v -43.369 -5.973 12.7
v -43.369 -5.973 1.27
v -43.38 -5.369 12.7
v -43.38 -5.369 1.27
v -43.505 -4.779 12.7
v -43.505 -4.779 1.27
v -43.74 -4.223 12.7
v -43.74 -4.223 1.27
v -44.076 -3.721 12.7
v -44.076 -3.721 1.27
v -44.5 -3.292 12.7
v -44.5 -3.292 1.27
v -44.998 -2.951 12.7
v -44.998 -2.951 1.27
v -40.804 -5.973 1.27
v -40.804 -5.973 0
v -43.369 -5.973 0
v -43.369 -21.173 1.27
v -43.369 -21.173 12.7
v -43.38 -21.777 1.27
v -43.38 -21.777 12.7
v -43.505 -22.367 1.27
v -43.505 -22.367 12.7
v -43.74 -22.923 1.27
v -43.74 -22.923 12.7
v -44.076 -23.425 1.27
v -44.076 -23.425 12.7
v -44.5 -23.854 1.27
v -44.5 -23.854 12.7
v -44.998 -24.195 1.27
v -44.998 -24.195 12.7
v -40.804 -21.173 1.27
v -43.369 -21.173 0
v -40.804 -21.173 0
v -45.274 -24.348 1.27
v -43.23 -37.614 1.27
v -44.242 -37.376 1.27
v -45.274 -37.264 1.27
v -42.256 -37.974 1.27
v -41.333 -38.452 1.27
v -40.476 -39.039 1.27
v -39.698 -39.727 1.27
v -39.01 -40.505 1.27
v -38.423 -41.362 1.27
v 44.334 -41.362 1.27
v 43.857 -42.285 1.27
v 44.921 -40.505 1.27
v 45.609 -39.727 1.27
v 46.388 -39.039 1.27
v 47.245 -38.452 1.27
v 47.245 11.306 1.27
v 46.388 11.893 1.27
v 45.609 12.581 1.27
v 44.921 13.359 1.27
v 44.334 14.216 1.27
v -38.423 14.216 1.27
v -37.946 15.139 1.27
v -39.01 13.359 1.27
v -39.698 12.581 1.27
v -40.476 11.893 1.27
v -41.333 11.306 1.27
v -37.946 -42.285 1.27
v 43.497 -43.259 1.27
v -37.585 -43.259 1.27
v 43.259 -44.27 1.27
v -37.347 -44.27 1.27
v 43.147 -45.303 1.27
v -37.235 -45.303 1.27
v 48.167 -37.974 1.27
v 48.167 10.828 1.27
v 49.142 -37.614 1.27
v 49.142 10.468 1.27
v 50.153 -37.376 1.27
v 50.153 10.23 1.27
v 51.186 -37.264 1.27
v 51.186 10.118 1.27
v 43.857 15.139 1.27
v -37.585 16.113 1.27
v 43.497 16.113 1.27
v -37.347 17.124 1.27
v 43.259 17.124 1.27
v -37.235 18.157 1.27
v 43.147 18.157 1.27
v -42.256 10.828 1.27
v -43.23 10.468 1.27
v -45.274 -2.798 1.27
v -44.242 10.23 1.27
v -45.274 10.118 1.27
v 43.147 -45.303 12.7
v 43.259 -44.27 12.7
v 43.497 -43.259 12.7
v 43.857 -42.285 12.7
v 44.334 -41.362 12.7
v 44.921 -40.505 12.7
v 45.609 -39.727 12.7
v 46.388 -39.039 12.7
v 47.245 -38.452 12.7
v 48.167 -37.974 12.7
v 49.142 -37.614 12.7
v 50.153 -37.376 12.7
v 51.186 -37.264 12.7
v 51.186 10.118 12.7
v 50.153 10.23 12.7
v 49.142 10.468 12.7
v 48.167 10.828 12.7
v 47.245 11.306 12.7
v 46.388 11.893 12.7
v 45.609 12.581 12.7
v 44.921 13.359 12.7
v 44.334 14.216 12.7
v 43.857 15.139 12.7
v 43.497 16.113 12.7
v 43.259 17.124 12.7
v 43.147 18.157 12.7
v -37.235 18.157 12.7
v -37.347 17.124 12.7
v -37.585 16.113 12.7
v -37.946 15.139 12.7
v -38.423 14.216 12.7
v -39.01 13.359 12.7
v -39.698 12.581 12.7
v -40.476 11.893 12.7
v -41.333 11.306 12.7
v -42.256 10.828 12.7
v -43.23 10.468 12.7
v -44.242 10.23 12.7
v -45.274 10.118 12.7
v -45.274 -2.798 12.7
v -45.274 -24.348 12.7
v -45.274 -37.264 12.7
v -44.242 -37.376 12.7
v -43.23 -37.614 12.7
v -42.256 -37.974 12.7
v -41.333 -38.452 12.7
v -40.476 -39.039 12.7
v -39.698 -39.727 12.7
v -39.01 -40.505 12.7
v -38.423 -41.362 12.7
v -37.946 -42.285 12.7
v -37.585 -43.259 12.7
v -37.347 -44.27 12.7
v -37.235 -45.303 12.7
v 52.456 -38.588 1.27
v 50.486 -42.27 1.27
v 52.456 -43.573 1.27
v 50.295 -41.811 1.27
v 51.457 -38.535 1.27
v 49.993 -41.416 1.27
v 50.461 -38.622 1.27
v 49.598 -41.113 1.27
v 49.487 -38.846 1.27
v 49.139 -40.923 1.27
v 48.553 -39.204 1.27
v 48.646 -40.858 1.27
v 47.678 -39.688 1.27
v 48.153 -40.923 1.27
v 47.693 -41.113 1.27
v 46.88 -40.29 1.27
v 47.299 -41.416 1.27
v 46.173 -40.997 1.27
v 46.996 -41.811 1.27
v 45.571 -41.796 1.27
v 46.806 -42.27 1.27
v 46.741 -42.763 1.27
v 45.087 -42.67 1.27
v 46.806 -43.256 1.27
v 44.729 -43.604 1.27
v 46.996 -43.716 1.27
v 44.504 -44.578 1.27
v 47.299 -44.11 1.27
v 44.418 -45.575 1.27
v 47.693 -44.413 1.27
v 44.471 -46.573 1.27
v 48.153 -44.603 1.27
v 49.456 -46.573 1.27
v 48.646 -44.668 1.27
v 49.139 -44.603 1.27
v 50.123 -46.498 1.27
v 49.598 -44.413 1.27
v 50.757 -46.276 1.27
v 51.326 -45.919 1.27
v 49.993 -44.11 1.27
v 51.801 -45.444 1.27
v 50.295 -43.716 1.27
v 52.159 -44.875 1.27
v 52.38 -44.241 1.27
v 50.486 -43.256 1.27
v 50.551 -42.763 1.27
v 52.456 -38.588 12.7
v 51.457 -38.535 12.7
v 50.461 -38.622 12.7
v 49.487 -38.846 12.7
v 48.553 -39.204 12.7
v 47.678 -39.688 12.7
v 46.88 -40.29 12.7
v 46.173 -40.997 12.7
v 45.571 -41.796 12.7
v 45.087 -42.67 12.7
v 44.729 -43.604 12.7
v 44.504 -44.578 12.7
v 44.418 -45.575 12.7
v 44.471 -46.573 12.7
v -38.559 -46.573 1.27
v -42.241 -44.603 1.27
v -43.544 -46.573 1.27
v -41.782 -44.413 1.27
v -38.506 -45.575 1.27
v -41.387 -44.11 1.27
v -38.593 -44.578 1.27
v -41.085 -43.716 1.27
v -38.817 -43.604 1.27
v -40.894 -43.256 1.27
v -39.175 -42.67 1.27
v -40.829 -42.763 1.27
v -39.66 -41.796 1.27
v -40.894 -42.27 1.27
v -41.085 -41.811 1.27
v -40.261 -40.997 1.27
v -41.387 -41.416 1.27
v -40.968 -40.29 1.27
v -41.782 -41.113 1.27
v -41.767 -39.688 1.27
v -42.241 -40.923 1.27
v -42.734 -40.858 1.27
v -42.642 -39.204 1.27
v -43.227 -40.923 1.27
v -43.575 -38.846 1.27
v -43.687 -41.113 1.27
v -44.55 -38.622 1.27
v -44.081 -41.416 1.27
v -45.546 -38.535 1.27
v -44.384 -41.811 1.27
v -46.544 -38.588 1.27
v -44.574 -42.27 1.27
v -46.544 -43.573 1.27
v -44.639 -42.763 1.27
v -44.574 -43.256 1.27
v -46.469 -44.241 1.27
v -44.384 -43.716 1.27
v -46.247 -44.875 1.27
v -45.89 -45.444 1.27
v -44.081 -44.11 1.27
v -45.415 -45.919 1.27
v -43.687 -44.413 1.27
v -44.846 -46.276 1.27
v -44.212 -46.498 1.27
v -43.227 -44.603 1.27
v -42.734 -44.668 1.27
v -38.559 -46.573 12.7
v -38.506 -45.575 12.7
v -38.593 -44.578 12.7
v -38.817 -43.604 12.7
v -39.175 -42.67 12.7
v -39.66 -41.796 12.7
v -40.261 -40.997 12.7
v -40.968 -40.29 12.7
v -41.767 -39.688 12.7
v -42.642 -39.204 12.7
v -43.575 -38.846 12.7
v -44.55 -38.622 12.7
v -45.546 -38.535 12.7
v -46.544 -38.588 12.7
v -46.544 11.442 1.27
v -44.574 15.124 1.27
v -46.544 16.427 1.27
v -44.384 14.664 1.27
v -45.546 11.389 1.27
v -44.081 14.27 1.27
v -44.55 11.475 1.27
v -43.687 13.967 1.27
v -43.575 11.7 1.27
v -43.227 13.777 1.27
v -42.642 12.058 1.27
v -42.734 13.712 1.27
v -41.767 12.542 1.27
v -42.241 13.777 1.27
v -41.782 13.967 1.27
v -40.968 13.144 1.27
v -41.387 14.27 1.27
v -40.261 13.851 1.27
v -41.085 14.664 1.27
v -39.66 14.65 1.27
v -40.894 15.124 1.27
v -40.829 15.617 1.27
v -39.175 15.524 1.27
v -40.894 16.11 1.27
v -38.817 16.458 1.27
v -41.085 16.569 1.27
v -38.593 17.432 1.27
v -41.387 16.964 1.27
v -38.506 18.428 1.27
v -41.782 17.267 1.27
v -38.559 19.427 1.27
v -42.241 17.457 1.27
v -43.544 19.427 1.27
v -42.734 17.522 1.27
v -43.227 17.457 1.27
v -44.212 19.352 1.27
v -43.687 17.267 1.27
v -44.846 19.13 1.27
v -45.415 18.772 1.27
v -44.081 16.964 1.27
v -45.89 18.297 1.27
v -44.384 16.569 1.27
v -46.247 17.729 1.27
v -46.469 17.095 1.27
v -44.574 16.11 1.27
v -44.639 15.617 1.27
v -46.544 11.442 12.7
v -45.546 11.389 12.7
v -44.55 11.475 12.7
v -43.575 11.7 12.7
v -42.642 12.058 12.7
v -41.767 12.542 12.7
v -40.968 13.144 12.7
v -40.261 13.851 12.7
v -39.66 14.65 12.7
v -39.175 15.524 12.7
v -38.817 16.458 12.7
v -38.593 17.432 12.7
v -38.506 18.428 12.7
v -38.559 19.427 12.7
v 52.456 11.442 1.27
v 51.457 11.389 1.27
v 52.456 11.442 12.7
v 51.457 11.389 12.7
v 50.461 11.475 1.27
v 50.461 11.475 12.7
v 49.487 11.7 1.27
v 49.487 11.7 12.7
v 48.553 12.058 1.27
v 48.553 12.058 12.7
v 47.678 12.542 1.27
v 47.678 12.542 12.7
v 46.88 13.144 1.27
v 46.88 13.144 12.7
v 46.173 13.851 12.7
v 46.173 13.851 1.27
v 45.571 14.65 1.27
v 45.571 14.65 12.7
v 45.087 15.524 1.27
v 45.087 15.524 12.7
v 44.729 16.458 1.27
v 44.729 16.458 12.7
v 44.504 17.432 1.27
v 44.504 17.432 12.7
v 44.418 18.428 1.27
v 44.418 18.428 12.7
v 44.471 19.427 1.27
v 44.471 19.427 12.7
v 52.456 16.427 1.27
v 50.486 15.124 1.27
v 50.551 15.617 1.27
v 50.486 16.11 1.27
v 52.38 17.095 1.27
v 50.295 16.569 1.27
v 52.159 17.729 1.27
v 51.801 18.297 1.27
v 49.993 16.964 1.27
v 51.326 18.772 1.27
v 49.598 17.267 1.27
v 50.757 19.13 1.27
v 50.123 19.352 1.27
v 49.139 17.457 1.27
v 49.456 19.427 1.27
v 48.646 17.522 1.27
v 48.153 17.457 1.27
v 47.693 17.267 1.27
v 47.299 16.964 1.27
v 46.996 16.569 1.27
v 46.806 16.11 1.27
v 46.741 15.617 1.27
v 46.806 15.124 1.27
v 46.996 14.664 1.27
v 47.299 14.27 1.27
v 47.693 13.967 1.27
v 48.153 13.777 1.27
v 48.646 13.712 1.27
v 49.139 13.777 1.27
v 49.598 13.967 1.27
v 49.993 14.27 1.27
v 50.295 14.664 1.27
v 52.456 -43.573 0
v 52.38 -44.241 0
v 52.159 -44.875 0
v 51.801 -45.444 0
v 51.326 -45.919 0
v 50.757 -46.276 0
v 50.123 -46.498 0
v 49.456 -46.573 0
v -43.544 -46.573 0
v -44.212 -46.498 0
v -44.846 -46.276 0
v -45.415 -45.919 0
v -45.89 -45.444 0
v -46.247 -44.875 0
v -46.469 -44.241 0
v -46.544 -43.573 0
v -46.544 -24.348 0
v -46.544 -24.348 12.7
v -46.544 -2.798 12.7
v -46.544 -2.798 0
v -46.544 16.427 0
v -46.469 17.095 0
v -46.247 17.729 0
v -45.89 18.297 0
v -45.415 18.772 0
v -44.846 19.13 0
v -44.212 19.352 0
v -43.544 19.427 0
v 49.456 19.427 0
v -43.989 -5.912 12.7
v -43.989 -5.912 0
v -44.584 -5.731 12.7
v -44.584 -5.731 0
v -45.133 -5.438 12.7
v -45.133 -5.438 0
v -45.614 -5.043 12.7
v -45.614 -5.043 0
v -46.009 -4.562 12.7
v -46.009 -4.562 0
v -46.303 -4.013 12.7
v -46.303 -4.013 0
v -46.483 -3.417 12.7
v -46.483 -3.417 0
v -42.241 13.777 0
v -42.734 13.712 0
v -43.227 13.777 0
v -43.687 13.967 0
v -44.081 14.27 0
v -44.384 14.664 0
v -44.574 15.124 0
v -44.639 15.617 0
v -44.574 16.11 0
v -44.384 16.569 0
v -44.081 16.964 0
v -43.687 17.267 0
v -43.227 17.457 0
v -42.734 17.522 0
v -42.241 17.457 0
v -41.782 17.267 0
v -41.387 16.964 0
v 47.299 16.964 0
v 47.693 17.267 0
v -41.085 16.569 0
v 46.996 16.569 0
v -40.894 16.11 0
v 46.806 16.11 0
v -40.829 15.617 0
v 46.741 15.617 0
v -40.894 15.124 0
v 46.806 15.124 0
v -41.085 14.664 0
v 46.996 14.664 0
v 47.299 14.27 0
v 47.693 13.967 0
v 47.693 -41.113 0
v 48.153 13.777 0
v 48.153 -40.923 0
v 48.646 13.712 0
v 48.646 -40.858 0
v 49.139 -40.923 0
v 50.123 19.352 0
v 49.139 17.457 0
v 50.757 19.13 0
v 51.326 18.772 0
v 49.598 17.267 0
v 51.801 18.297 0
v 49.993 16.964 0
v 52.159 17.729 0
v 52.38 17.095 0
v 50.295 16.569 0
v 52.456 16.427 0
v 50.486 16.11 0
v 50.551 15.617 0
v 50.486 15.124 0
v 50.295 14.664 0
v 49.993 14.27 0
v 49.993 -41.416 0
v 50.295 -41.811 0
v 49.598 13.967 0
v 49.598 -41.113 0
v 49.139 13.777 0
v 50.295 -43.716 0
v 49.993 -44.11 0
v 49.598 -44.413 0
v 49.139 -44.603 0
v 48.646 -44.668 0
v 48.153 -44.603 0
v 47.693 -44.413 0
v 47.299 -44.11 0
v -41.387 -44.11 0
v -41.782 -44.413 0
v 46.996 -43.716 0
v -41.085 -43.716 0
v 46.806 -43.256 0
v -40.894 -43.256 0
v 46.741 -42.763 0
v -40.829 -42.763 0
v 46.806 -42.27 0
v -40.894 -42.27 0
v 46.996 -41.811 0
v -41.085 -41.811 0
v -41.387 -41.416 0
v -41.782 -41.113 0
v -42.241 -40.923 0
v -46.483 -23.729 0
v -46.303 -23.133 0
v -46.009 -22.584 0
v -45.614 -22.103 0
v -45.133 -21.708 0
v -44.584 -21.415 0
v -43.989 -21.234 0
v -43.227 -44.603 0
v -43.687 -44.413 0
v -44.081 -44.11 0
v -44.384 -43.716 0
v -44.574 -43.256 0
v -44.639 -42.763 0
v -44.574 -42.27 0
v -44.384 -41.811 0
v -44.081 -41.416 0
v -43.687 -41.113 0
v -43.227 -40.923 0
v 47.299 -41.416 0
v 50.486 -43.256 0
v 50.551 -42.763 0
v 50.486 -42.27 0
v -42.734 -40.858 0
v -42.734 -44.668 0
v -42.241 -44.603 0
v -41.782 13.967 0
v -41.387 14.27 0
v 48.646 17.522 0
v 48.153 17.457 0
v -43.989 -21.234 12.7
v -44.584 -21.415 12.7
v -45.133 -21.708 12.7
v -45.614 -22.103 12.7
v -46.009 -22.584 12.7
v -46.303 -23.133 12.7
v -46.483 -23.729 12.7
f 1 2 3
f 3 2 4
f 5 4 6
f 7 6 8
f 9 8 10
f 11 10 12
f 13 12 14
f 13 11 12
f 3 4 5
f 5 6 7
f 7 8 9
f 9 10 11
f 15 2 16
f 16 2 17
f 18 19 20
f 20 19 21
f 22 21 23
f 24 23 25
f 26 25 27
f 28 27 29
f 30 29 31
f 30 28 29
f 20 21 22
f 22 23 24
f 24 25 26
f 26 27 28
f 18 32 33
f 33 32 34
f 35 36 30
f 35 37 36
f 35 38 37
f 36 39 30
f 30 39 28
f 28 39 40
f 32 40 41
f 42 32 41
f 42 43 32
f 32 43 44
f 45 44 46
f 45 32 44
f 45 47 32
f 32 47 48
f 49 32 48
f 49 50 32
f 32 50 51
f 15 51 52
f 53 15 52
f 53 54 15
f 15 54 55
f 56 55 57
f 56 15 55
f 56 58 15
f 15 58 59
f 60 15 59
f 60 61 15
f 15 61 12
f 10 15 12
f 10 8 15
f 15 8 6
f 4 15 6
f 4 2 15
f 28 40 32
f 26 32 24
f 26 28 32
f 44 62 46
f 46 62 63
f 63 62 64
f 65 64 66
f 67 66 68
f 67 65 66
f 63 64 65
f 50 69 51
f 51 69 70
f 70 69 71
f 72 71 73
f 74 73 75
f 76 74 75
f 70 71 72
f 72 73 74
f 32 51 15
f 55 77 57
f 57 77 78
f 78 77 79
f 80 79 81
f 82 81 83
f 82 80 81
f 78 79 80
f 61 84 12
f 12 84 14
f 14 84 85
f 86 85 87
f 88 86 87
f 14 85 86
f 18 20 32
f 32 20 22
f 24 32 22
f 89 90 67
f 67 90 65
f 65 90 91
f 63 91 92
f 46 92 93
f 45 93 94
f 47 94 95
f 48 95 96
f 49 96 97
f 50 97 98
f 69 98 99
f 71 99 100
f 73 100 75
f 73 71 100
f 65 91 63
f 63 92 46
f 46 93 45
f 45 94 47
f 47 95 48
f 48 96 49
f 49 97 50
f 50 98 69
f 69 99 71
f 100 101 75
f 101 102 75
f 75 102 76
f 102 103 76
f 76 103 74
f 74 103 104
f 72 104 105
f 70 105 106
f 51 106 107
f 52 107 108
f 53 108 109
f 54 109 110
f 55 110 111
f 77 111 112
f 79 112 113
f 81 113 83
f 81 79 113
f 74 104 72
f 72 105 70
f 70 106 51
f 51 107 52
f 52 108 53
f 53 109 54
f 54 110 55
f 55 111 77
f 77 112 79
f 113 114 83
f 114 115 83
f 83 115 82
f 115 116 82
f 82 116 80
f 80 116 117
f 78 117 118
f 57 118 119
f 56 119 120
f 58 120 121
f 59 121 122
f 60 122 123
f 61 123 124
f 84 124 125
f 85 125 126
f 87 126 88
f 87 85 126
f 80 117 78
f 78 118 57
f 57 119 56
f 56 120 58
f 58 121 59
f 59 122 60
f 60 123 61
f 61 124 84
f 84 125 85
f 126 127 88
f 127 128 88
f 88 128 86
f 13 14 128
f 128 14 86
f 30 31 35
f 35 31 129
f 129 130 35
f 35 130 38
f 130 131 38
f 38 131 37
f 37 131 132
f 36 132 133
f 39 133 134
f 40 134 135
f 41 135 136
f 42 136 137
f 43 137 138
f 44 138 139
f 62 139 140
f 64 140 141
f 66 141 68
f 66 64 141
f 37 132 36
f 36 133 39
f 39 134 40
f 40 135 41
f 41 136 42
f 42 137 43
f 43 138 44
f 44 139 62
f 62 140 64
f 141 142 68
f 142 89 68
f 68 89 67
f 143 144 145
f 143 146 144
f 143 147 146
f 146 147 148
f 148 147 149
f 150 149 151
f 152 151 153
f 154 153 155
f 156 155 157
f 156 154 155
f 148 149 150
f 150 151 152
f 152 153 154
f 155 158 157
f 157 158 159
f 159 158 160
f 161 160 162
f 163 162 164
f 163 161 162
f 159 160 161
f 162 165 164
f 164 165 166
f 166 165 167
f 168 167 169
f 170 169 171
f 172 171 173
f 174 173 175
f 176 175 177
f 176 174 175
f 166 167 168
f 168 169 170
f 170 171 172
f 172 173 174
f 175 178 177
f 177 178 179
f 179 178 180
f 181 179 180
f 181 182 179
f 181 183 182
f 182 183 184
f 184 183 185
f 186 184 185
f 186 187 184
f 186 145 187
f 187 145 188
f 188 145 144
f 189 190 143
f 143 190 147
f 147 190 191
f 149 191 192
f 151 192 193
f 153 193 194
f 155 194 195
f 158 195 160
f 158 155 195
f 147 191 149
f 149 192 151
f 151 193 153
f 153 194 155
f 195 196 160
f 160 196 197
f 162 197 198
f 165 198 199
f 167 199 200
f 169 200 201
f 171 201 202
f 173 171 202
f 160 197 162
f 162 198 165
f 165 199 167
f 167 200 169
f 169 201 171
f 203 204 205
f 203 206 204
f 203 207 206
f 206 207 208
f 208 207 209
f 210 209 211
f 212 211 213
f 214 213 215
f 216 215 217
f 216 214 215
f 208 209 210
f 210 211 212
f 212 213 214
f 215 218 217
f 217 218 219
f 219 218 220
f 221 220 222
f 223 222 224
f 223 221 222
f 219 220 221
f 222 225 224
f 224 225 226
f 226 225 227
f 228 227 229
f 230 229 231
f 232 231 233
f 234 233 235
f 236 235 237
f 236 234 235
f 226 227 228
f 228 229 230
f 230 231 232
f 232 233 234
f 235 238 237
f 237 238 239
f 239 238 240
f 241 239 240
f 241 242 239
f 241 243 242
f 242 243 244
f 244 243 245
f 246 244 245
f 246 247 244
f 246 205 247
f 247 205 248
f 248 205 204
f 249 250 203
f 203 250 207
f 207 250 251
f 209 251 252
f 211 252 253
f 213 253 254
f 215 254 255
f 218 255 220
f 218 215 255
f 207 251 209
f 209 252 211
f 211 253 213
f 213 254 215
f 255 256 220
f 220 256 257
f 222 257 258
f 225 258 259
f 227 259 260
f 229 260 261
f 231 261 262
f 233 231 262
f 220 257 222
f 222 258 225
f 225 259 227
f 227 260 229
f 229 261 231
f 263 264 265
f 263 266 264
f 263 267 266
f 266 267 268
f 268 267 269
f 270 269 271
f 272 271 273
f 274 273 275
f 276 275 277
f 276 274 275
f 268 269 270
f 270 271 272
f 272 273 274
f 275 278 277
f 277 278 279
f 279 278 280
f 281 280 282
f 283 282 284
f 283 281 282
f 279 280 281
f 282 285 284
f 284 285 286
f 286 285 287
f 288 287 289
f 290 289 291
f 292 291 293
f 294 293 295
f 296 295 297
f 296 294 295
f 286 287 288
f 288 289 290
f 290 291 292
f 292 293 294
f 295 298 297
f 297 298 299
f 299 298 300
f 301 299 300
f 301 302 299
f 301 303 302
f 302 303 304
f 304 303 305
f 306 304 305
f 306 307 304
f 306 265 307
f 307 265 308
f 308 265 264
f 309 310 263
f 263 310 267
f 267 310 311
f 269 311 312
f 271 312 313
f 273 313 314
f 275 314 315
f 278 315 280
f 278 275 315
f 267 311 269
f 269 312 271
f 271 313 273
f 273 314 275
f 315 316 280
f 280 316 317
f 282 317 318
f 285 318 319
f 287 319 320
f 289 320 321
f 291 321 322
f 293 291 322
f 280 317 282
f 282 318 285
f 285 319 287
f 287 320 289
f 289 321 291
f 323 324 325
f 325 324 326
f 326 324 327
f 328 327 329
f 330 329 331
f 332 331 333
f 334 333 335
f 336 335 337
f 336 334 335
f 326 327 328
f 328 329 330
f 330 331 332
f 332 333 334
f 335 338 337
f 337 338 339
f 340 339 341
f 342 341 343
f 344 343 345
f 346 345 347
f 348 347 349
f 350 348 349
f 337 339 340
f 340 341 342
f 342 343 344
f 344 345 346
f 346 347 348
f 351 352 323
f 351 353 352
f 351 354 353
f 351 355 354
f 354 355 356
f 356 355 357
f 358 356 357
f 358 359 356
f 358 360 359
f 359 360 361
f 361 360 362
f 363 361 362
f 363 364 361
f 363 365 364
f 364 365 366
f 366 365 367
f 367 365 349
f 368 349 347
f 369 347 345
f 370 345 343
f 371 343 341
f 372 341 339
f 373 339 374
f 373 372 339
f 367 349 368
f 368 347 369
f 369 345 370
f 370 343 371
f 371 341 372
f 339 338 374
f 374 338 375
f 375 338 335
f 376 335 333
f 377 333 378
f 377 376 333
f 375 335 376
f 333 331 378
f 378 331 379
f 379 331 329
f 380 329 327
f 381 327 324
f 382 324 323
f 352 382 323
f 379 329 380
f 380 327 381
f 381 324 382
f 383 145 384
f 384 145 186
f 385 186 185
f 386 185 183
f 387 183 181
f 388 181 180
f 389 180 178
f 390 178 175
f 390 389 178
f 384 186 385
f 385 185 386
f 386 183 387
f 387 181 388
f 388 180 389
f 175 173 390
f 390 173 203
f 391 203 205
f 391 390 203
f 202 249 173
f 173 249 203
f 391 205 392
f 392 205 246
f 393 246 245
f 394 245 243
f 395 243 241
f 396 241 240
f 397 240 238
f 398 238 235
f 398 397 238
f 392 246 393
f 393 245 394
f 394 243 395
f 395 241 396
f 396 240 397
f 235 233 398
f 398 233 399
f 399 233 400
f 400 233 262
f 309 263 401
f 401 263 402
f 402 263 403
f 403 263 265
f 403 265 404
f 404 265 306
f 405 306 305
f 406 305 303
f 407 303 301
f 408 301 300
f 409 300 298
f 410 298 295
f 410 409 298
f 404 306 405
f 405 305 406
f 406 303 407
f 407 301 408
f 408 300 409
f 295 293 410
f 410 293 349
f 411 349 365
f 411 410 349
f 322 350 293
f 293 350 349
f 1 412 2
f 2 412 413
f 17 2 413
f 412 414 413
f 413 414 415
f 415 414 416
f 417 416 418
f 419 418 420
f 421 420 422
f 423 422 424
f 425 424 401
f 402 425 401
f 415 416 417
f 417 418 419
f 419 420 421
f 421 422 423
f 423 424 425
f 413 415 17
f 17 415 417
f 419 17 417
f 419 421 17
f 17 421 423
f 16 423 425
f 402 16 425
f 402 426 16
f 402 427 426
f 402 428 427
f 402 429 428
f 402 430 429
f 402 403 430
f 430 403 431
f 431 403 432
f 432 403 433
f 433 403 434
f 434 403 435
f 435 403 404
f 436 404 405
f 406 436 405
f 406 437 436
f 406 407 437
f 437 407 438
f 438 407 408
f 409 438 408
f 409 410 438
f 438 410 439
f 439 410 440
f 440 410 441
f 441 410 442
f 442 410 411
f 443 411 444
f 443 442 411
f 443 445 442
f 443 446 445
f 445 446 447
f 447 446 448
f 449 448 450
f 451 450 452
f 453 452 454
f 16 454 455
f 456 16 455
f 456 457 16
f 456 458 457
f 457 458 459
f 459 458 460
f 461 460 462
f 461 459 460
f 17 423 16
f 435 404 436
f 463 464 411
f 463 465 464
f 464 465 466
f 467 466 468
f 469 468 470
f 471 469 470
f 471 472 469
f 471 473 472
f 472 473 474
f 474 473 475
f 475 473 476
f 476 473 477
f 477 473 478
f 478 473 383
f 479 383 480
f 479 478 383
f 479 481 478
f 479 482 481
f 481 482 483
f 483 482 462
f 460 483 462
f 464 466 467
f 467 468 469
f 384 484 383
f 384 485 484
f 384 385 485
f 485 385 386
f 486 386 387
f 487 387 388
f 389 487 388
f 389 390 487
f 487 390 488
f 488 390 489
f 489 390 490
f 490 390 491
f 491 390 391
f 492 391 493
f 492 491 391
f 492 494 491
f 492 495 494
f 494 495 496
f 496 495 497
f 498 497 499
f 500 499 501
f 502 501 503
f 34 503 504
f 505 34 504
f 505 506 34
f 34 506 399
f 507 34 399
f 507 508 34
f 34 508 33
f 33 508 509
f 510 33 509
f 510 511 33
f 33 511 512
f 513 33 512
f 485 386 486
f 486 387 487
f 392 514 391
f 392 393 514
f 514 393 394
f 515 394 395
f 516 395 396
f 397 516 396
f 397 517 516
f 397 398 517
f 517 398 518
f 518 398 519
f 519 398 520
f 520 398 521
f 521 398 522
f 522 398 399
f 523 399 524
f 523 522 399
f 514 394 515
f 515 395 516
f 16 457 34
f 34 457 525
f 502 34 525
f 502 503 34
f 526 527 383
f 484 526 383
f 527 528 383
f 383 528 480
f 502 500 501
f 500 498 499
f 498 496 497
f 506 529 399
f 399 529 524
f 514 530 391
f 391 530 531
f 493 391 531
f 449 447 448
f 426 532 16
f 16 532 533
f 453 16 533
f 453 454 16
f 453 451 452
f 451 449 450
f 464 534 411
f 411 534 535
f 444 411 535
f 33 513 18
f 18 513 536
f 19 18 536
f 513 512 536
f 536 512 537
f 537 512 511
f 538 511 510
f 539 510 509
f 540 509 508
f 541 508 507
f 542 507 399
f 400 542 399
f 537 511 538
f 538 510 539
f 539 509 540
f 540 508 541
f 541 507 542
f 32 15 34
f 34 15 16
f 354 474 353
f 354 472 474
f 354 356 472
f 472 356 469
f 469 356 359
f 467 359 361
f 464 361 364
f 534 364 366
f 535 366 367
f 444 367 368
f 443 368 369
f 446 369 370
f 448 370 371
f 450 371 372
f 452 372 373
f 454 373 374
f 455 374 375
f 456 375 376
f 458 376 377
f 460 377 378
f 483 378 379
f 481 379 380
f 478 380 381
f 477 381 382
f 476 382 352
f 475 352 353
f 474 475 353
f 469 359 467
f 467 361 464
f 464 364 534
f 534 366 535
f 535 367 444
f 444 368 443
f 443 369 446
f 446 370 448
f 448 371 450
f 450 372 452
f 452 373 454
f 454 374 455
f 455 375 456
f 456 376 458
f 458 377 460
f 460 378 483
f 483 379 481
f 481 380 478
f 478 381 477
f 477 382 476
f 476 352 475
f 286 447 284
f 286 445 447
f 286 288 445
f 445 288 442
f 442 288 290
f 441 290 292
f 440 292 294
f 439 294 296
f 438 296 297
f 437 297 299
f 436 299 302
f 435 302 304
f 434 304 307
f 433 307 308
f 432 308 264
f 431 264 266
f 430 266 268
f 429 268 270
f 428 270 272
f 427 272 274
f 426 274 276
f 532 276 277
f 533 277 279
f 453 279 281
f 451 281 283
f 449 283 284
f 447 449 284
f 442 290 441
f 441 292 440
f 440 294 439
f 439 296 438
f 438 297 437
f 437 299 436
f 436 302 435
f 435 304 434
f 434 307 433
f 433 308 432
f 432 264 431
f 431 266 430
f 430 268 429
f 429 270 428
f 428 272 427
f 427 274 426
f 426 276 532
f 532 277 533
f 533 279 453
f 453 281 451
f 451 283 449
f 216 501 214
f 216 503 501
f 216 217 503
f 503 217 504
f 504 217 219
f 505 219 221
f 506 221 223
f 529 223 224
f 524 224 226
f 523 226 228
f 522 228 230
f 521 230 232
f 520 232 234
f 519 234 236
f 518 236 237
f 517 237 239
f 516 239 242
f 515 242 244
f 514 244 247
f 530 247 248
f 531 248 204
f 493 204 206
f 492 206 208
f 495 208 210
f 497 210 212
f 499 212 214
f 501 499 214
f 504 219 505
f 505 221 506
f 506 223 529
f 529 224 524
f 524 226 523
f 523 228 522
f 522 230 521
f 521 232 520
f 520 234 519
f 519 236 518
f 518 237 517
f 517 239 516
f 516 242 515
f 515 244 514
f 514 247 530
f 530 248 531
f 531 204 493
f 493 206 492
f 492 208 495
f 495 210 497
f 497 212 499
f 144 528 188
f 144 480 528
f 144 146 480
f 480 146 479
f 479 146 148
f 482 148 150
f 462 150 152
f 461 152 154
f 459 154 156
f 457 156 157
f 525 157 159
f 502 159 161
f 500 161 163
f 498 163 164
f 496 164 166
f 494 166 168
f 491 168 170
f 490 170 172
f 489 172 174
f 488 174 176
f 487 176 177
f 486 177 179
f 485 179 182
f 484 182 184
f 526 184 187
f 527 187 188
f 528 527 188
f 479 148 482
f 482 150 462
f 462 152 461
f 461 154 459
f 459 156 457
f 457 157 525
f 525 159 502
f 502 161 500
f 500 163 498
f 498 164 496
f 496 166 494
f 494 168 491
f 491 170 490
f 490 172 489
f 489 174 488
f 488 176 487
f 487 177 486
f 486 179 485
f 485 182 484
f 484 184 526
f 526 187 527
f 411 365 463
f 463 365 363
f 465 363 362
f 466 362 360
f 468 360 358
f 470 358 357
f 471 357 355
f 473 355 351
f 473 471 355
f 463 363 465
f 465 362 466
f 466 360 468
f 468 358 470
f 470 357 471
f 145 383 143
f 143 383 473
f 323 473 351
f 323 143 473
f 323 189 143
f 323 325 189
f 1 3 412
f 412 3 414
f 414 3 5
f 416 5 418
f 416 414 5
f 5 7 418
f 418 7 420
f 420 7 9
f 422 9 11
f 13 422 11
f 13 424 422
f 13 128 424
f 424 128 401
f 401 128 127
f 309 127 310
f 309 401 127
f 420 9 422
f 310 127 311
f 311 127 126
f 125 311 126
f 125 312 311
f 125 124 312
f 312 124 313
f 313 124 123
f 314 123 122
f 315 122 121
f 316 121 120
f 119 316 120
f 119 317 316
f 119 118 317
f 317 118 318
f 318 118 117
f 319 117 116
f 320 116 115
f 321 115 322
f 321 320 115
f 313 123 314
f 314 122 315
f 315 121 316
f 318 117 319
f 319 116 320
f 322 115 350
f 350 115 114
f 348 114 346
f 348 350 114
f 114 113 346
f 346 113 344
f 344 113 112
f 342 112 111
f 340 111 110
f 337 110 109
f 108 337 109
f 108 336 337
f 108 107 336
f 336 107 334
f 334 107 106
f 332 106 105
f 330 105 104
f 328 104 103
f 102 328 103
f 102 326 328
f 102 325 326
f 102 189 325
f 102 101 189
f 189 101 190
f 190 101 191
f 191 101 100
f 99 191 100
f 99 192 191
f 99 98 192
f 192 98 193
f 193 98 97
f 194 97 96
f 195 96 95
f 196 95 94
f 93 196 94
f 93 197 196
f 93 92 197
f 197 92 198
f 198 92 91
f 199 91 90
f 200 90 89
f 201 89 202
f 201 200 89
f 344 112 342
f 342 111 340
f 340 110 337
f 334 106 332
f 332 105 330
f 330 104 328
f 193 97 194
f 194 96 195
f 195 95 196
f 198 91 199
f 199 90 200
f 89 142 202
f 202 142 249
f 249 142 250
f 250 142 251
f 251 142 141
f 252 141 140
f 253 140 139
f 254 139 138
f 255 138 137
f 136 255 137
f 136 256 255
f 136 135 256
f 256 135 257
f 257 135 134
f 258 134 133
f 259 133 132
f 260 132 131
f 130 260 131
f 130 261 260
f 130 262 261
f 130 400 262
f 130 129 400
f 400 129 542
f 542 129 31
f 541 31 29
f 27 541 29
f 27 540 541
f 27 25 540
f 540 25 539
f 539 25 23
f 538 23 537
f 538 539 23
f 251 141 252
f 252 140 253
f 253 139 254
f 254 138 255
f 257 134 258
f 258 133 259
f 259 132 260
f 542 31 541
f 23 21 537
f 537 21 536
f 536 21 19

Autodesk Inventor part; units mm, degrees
ref_plane "YZ Plane" through (0, 0, 0) normal (1, 0, 0) x (0, 1, 0)
ref_plane "XZ Plane" through (0, 0, 0) normal (0, 1, 0) x (-1, 0, 0)
ref_plane "XY Plane" through (0, 0, 0) normal (0, 0, 1) x (1, 0, 0)
sketch "Sketch1" plane through (0, 0, 0) normal (0, 0, 1) x (1, 0, 0)
  line L0 (-43.5443, 19.427) -> (49.4557, 19.427)
  line L1 (52.4557, 16.427) -> (52.4557, -43.573)
  line L2 (49.4557, -46.573) -> (-43.5443, -46.573)
  line L3 (-46.5443, -43.573) -> (-46.5443, 16.427)
  arc A0 (-43.5443, 19.427) -> (-46.5443, 16.427) centre (-43.5443, 16.427) ccw
  arc A1 (-46.5443, -43.573) -> (-43.5443, -46.573) centre (-43.5443, -43.573) ccw
  arc A2 (49.4557, -46.573) -> (52.4557, -43.573) centre (49.4557, -43.573) ccw
  arc A3 (52.4557, 16.427) -> (49.4557, 19.427) centre (49.4557, 16.427) ccw
  point P0 (0, 0)
  point P1 (0, 0)
  point P2 (-46.5443, 19.427)
  point P3 (52.4557, -46.573)
  point P4 (52.4557, 19.427)
  dimension "d0" = 99
  dimension "d1" = 66
  dimension "d2" = 3
extrude "Extrusion1" add sketch "Sketch1" along normal blind 12.7
sketch "Sketch2" plane through (0, 0, 12.7) normal (0, 0, 1) x (1, 0, 0)
  line L0 (-46.5443, 16.427) -> (-46.5443, -43.573) projected
  line L1 (49.4557, 19.427) -> (-43.5443, 19.427) projected
  circle A0 centre (-42.7343, 15.617) radius 1.905
  line L2 (-50.0562, -13.573) -> (79.0191, -13.573) construction
  line L3 (2.9557, 30.2203) -> (2.9557, -48.7988) construction
  circle A1 centre (-42.7343, -42.763) radius 1.905
  circle A2 centre (48.6457, 15.617) radius 1.905
  circle A3 centre (48.6457, -42.763) radius 1.905
  point P0 (0, 0)
  dimension "d8" = 3.81
  dimension "d9" = 3.81
  dimension "d10" = 3.81
  dimension "d50" = 3.81
  dimension "d51" = 3.81
  dimension "d52" = 3.81
extrude "Extrusion2" cut sketch "Sketch2" against normal blind 25.4
sketch "Sketch3" plane through (0, 0, 12.7) normal (0, 0, 1) x (1, 0, 0)
  circle A0 centre (48.6457, 15.617) radius 1.905 projected
  circle A1 centre (-42.7343, 15.617) radius 1.905 projected
  circle A2 centre (-42.7343, -42.763) radius 1.905 projected
  circle A3 centre (48.6457, -42.763) radius 1.905 projected
  line L0 (49.4557, 19.427) -> (-43.5443, 19.427) projected
  arc A4 (-43.5443, 19.427) -> (-46.5443, 16.427) centre (-43.5443, 16.427) ccw projected
  line L1 (-46.5443, 16.427) -> (-46.5443, -43.573) construction
  arc A5 (-46.5443, -43.573) -> (-43.5443, -46.573) centre (-43.5443, -43.573) ccw projected
  line L2 (-43.5443, -46.573) -> (49.4557, -46.573) projected
  arc A6 (49.4557, -46.573) -> (52.4557, -43.573) centre (49.4557, -43.573) ccw projected
  line L3 (52.4557, -43.573) -> (52.4557, 16.427) projected
  arc A7 (52.4557, 16.427) -> (49.4557, 19.427) centre (49.4557, 16.427) ccw projected
  arc A8 (-43.5443, 19.427) -> (-46.5443, 16.427) centre (-43.5443, 16.427) ccw projected
  line L4 (49.4557, 19.427) -> (-43.5443, 19.427) projected
  circle A9 centre (48.6457, 15.617) radius 1.905 projected
  circle A10 centre (-42.7343, 15.617) radius 1.905 projected
  circle A11 centre (-42.7343, -42.763) radius 1.905 projected
  circle A12 centre (48.6457, -42.763) radius 1.905 projected
  arc A13 (52.4557, 16.427) -> (49.4557, 19.427) centre (49.4557, 16.427) ccw projected
  line L5 (52.4557, 16.427) -> (52.4557, -43.573) projected
  arc A14 (49.4557, -46.573) -> (52.4557, -43.573) centre (49.4557, -43.573) ccw projected
  line L6 (49.4557, -46.573) -> (-43.5443, -46.573) projected
  arc A15 (-46.5443, -43.573) -> (-43.5443, -46.573) centre (-43.5443, -43.573) ccw projected
  line L7 (-46.5443, -43.573) -> (-46.5443, 16.427) projected
  arc A16 (-43.5443, 19.427) -> (-46.5443, 16.427) centre (-43.5443, 16.427) ccw projected
  line L8 (-43.5443, 19.427) -> (49.4557, 19.427) projected
  line L9 (-43.5443, 19.427) -> (49.4557, 19.427) projected
  line L10 (-40.8039, 19.427) -> (-40.8039, -46.573) construction
  line L11 (49.4557, -46.573) -> (-43.5443, -46.573) projected
  line L12 (-40.8039, 19.427) -> (-51.3078, 19.427) construction
  line L13 (-40.8039, -46.573) -> (-51.3078, -46.573) construction
  line L14 (-40.8039, -21.173) -> (-51.3078, -21.173) construction
  line L15 (-40.8039, -5.973) -> (-51.3078, -5.973) construction
  line L16 (-46.5443, -43.573) -> (-46.5443, 16.427) projected
  line L17 (-46.5443, -5.973) -> (-40.8039, -5.973)
  line L18 (-40.8039, -5.973) -> (-40.8039, -21.173)
  line L19 (-40.8039, -21.173) -> (-46.5443, -21.173)
  line L20 (-46.5443, -21.173) -> (-46.5443, -5.973)
  point P0 (0, 0)
  dimension "d13" = 25.4
  dimension "d14" = 25.4
  dimension "d15" = 5.7404
extrude "Extrusion3" cut sketch "Sketch3" against normal blind 25.4 contours L17 L18 L19 L7
fillet "Fillet1" radius 3.175 2 edges at (-46.5443, -21.173, 6.35) (-46.5443, -5.973, 6.35)
sketch "Sketch9" plane through (0, 0, 12.7) normal (0, 0, 1) x (1, 0, 0)
  arc A0 (-43.5443, 19.427) -> (-46.5443, 16.427) centre (-43.5443, 16.427) ccw projected
  line L0 (-46.5443, -2.798) -> (-46.5443, 16.427) construction
  line L1 (-46.5443, 16.427) -> (-46.5443, -2.798)
  line L2 (-43.5443, 19.427) -> (-26.5771, 19.427) construction
  line L3 (49.4557, 19.427) -> (-43.5443, 19.427) projected
  line L4 (-45.6657, 18.5483) -> (-26.5771, -0.5403) construction
  line L5 (-45.6657, 18.5483) -> (-18.6704, 18.5483) construction
  circle A1 centre (-45.6657, 18.5483) radius 7.1603
  arc A2 (-46.5443, -2.798) -> (-43.3693, -5.973) centre (-43.3693, -2.798) ccw projected
  line L6 (-43.3693, -5.973) -> (-40.8039, -5.973) projected
  line L7 (-40.8039, -5.973) -> (-40.8039, -21.173) projected
  line L8 (-40.8039, -21.173) -> (-43.3693, -21.173) projected
  arc A3 (-43.3693, -21.173) -> (-46.5443, -24.348) centre (-43.3693, -24.348) ccw projected
  line L9 (-46.5443, -24.348) -> (-46.5443, -43.573) projected
  arc A4 (-46.5443, -43.573) -> (-43.5443, -46.573) centre (-43.5443, -43.573) ccw projected
  line L10 (-43.5443, -46.573) -> (49.4557, -46.573) projected
  arc A5 (49.4557, -46.573) -> (52.4557, -43.573) centre (49.4557, -43.573) ccw projected
  line L11 (52.4557, -43.573) -> (52.4557, 16.427) projected
  arc A6 (52.4557, 16.427) -> (49.4557, 19.427) centre (49.4557, 16.427) ccw projected
  line L12 (49.4557, 19.427) -> (-43.5443, 19.427) projected
  arc A7 (-43.5443, 19.427) -> (-46.5443, 16.427) centre (-43.5443, 16.427) ccw projected
  line L13 (-46.5443, 16.427) -> (-46.5443, -2.798) projected
  circle A8 centre (48.6457, 15.617) radius 1.905 projected
  circle A9 centre (-42.7343, 15.617) radius 1.905 projected
  circle A10 centre (-42.7343, -42.763) radius 1.905 projected
  circle A11 centre (48.6457, -42.763) radius 1.905 projected
  line L14 (-75.7777, -13.573) -> (114.1059, -13.573) construction
  line L15 (2.9557, 31.1348) -> (2.9557, -53.319) construction
  circle A12 centre (-45.6657, -45.6944) radius 7.1603
  line L16 (2.9557, -58.2809) -> (2.9557, 26.1729) construction
  circle A13 centre (51.577, 18.5483) radius 7.1603
  circle A14 centre (51.577, -45.6944) radius 7.1603
  point P0 (0, 0)
  dimension "d28" = 45
extrude "Extrusion5" cut sketch "Sketch9" against normal blind 11.43 contours L3 A1 L1 A0 | A0 L1 A1 L3 | A13 L11 A6 L3 | L3 A6 L11 A13 | A14 L10 A5 L11 | L11 A5 L10 A14 | A12 L9 A4 L10 | L10 A4 L9 A12
sketch "Sketch10" plane through (0, 0, 12.7) normal (0, 0, 1) x (1, 0, 0)
  arc A0 (52.4557, -38.5882) -> (44.4708, -46.573) centre (51.577, -45.6944) ccw projected
  line L0 (52.4557, -38.5882) -> (52.4557, 11.4421) projected
  arc A1 (44.4708, 19.427) -> (52.4557, 11.4421) centre (51.577, 18.5483) ccw projected
  line L1 (44.4708, 19.427) -> (-38.5595, 19.427) projected
  arc A2 (-46.5443, 11.4421) -> (-38.5595, 19.427) centre (-45.6657, 18.5483) ccw projected
  line L2 (-46.5443, 11.4421) -> (-46.5443, -2.798) projected
  arc A3 (-46.5443, -2.798) -> (-43.3693, -5.973) centre (-43.3693, -2.798) ccw projected
  line L3 (-43.3693, -5.973) -> (-40.8039, -5.973) projected
  line L4 (-40.8039, -5.973) -> (-40.8039, -21.173) projected
  line L5 (-40.8039, -21.173) -> (-43.3693, -21.173) projected
  arc A4 (-43.3693, -21.173) -> (-46.5443, -24.348) centre (-43.3693, -24.348) ccw projected
  line L6 (-46.5443, -24.348) -> (-46.5443, -38.5882) projected
  arc A5 (-38.5595, -46.573) -> (-46.5443, -38.5882) centre (-45.6657, -45.6944) ccw projected
  line L7 (-38.5595, -46.573) -> (44.4708, -46.573) projected
  line L8 (-36.7645, -45.303) -> (43.1467, -45.303)
  line L9 (-36.7645, 18.157) -> (43.1467, 18.157)
  line L10 (44.4708, 19.427) -> (-38.5595, 19.427) projected
  line L11 (-36.7645, -45.303) -> (-37.2353, -45.303)
  arc A6 (-38.5595, -46.573) -> (-46.5443, -38.5882) centre (-45.6657, -45.6944) ccw projected
  line L12 (-36.7645, 18.157) -> (-37.2353, 18.157)
  line L13 (51.1857, 10.118) -> (51.1857, -37.264)
  arc A7 (44.4708, 19.427) -> (52.4557, 11.4421) centre (51.577, 18.5483) ccw projected
  line L14 (-39.5339, -5.973) -> (-39.5339, -21.173)
  line L15 (-45.2743, -2.798) -> (-39.5339, -5.973)
  line L16 (-39.5339, -21.173) -> (-45.2743, -24.348)
  line L17 (51.1857, 10.118) -> (52.4557, 10.118) construction
  line L18 (52.4557, -38.5882) -> (52.4557, 11.4421) projected
  line L19 (43.1467, 18.157) -> (43.1467, 19.427) construction
  arc A8 (43.1467, 18.157) -> (51.1857, 10.118) centre (51.577, 18.5483) ccw
  line L20 (-56.5649, -13.573) -> (80.9191, -13.573) construction
  line L21 (2.9557, 34.2968) -> (2.9557, -68.6615) construction
  arc A9 (51.1857, -37.264) -> (43.1467, -45.303) centre (51.577, -45.6944) ccw
  arc A10 (-45.2743, 10.118) -> (-37.2353, 18.157) centre (-45.6657, 18.5483) ccw
  arc A11 (-37.2353, -45.303) -> (-45.2743, -37.264) centre (-45.6657, -45.6944) ccw
  line L22 (-45.2743, 10.118) -> (-45.2743, -2.798)
  line L23 (-45.2743, -37.264) -> (-45.2743, -24.348)
  line L24 (-46.5443, -43.573) -> (-46.5443, -24.348) projected
  point P0 (0, 0)
  dimension "d31" = 1.27
  dimension "d32" = 1.27
  dimension "d35" = 1.27
  dimension "d36" = 1.27
  dimension "d39" = 3.175
  dimension "d40" = 3.175
  dimension "d42" = 1.27
  dimension "d43" = 1.27
  dimension "d44" = 1.2791
extrude "Extrusion6" cut sketch "Sketch10" against normal blind 11.43 contours L11 A11 L23 L16 L14 L15 L22 A10 L12 L9 A8 L13 A9 L8
sketch "Sketch11" plane through (-40.8039, -21.173, 12.7) normal (-1, 0, 0) x (0, 0, 1)
  line L0 (-12.7, 0) -> (-12.7, 15.2) projected
  line L1 (0, 0) -> (-12.7, 0) projected
  line L2 (0, 15.2) -> (0, 0) projected
  line L3 (0, 15.2) -> (-12.7, 15.2) projected
  line L4 (-11.43, 0) -> (-11.43, 15.2) projected
  line L5 (0, 15.2) -> (-11.43, 15.2) projected
  line L6 (0, 0) -> (-11.43, 0) projected
  line L7 (0, 15.2) -> (-11.43, 15.2)
  line L8 (-11.43, 15.2) -> (-11.43, 0)
  line L9 (-11.43, 0) -> (0, 0)
  line L10 (0, 0) -> (0, 15.2)
  point P0 (-12.7, 21.173)
extrude "Extrusion7" cut sketch "Sketch11" against normal blind 7.62 contours L4 L3 L2 L1
fillet "Fillet2" radius 3.175 2 edges at (-39.5339, -21.173, 6.985) (-39.5339, -5.973, 6.985)
properties part number "battbase_final"
